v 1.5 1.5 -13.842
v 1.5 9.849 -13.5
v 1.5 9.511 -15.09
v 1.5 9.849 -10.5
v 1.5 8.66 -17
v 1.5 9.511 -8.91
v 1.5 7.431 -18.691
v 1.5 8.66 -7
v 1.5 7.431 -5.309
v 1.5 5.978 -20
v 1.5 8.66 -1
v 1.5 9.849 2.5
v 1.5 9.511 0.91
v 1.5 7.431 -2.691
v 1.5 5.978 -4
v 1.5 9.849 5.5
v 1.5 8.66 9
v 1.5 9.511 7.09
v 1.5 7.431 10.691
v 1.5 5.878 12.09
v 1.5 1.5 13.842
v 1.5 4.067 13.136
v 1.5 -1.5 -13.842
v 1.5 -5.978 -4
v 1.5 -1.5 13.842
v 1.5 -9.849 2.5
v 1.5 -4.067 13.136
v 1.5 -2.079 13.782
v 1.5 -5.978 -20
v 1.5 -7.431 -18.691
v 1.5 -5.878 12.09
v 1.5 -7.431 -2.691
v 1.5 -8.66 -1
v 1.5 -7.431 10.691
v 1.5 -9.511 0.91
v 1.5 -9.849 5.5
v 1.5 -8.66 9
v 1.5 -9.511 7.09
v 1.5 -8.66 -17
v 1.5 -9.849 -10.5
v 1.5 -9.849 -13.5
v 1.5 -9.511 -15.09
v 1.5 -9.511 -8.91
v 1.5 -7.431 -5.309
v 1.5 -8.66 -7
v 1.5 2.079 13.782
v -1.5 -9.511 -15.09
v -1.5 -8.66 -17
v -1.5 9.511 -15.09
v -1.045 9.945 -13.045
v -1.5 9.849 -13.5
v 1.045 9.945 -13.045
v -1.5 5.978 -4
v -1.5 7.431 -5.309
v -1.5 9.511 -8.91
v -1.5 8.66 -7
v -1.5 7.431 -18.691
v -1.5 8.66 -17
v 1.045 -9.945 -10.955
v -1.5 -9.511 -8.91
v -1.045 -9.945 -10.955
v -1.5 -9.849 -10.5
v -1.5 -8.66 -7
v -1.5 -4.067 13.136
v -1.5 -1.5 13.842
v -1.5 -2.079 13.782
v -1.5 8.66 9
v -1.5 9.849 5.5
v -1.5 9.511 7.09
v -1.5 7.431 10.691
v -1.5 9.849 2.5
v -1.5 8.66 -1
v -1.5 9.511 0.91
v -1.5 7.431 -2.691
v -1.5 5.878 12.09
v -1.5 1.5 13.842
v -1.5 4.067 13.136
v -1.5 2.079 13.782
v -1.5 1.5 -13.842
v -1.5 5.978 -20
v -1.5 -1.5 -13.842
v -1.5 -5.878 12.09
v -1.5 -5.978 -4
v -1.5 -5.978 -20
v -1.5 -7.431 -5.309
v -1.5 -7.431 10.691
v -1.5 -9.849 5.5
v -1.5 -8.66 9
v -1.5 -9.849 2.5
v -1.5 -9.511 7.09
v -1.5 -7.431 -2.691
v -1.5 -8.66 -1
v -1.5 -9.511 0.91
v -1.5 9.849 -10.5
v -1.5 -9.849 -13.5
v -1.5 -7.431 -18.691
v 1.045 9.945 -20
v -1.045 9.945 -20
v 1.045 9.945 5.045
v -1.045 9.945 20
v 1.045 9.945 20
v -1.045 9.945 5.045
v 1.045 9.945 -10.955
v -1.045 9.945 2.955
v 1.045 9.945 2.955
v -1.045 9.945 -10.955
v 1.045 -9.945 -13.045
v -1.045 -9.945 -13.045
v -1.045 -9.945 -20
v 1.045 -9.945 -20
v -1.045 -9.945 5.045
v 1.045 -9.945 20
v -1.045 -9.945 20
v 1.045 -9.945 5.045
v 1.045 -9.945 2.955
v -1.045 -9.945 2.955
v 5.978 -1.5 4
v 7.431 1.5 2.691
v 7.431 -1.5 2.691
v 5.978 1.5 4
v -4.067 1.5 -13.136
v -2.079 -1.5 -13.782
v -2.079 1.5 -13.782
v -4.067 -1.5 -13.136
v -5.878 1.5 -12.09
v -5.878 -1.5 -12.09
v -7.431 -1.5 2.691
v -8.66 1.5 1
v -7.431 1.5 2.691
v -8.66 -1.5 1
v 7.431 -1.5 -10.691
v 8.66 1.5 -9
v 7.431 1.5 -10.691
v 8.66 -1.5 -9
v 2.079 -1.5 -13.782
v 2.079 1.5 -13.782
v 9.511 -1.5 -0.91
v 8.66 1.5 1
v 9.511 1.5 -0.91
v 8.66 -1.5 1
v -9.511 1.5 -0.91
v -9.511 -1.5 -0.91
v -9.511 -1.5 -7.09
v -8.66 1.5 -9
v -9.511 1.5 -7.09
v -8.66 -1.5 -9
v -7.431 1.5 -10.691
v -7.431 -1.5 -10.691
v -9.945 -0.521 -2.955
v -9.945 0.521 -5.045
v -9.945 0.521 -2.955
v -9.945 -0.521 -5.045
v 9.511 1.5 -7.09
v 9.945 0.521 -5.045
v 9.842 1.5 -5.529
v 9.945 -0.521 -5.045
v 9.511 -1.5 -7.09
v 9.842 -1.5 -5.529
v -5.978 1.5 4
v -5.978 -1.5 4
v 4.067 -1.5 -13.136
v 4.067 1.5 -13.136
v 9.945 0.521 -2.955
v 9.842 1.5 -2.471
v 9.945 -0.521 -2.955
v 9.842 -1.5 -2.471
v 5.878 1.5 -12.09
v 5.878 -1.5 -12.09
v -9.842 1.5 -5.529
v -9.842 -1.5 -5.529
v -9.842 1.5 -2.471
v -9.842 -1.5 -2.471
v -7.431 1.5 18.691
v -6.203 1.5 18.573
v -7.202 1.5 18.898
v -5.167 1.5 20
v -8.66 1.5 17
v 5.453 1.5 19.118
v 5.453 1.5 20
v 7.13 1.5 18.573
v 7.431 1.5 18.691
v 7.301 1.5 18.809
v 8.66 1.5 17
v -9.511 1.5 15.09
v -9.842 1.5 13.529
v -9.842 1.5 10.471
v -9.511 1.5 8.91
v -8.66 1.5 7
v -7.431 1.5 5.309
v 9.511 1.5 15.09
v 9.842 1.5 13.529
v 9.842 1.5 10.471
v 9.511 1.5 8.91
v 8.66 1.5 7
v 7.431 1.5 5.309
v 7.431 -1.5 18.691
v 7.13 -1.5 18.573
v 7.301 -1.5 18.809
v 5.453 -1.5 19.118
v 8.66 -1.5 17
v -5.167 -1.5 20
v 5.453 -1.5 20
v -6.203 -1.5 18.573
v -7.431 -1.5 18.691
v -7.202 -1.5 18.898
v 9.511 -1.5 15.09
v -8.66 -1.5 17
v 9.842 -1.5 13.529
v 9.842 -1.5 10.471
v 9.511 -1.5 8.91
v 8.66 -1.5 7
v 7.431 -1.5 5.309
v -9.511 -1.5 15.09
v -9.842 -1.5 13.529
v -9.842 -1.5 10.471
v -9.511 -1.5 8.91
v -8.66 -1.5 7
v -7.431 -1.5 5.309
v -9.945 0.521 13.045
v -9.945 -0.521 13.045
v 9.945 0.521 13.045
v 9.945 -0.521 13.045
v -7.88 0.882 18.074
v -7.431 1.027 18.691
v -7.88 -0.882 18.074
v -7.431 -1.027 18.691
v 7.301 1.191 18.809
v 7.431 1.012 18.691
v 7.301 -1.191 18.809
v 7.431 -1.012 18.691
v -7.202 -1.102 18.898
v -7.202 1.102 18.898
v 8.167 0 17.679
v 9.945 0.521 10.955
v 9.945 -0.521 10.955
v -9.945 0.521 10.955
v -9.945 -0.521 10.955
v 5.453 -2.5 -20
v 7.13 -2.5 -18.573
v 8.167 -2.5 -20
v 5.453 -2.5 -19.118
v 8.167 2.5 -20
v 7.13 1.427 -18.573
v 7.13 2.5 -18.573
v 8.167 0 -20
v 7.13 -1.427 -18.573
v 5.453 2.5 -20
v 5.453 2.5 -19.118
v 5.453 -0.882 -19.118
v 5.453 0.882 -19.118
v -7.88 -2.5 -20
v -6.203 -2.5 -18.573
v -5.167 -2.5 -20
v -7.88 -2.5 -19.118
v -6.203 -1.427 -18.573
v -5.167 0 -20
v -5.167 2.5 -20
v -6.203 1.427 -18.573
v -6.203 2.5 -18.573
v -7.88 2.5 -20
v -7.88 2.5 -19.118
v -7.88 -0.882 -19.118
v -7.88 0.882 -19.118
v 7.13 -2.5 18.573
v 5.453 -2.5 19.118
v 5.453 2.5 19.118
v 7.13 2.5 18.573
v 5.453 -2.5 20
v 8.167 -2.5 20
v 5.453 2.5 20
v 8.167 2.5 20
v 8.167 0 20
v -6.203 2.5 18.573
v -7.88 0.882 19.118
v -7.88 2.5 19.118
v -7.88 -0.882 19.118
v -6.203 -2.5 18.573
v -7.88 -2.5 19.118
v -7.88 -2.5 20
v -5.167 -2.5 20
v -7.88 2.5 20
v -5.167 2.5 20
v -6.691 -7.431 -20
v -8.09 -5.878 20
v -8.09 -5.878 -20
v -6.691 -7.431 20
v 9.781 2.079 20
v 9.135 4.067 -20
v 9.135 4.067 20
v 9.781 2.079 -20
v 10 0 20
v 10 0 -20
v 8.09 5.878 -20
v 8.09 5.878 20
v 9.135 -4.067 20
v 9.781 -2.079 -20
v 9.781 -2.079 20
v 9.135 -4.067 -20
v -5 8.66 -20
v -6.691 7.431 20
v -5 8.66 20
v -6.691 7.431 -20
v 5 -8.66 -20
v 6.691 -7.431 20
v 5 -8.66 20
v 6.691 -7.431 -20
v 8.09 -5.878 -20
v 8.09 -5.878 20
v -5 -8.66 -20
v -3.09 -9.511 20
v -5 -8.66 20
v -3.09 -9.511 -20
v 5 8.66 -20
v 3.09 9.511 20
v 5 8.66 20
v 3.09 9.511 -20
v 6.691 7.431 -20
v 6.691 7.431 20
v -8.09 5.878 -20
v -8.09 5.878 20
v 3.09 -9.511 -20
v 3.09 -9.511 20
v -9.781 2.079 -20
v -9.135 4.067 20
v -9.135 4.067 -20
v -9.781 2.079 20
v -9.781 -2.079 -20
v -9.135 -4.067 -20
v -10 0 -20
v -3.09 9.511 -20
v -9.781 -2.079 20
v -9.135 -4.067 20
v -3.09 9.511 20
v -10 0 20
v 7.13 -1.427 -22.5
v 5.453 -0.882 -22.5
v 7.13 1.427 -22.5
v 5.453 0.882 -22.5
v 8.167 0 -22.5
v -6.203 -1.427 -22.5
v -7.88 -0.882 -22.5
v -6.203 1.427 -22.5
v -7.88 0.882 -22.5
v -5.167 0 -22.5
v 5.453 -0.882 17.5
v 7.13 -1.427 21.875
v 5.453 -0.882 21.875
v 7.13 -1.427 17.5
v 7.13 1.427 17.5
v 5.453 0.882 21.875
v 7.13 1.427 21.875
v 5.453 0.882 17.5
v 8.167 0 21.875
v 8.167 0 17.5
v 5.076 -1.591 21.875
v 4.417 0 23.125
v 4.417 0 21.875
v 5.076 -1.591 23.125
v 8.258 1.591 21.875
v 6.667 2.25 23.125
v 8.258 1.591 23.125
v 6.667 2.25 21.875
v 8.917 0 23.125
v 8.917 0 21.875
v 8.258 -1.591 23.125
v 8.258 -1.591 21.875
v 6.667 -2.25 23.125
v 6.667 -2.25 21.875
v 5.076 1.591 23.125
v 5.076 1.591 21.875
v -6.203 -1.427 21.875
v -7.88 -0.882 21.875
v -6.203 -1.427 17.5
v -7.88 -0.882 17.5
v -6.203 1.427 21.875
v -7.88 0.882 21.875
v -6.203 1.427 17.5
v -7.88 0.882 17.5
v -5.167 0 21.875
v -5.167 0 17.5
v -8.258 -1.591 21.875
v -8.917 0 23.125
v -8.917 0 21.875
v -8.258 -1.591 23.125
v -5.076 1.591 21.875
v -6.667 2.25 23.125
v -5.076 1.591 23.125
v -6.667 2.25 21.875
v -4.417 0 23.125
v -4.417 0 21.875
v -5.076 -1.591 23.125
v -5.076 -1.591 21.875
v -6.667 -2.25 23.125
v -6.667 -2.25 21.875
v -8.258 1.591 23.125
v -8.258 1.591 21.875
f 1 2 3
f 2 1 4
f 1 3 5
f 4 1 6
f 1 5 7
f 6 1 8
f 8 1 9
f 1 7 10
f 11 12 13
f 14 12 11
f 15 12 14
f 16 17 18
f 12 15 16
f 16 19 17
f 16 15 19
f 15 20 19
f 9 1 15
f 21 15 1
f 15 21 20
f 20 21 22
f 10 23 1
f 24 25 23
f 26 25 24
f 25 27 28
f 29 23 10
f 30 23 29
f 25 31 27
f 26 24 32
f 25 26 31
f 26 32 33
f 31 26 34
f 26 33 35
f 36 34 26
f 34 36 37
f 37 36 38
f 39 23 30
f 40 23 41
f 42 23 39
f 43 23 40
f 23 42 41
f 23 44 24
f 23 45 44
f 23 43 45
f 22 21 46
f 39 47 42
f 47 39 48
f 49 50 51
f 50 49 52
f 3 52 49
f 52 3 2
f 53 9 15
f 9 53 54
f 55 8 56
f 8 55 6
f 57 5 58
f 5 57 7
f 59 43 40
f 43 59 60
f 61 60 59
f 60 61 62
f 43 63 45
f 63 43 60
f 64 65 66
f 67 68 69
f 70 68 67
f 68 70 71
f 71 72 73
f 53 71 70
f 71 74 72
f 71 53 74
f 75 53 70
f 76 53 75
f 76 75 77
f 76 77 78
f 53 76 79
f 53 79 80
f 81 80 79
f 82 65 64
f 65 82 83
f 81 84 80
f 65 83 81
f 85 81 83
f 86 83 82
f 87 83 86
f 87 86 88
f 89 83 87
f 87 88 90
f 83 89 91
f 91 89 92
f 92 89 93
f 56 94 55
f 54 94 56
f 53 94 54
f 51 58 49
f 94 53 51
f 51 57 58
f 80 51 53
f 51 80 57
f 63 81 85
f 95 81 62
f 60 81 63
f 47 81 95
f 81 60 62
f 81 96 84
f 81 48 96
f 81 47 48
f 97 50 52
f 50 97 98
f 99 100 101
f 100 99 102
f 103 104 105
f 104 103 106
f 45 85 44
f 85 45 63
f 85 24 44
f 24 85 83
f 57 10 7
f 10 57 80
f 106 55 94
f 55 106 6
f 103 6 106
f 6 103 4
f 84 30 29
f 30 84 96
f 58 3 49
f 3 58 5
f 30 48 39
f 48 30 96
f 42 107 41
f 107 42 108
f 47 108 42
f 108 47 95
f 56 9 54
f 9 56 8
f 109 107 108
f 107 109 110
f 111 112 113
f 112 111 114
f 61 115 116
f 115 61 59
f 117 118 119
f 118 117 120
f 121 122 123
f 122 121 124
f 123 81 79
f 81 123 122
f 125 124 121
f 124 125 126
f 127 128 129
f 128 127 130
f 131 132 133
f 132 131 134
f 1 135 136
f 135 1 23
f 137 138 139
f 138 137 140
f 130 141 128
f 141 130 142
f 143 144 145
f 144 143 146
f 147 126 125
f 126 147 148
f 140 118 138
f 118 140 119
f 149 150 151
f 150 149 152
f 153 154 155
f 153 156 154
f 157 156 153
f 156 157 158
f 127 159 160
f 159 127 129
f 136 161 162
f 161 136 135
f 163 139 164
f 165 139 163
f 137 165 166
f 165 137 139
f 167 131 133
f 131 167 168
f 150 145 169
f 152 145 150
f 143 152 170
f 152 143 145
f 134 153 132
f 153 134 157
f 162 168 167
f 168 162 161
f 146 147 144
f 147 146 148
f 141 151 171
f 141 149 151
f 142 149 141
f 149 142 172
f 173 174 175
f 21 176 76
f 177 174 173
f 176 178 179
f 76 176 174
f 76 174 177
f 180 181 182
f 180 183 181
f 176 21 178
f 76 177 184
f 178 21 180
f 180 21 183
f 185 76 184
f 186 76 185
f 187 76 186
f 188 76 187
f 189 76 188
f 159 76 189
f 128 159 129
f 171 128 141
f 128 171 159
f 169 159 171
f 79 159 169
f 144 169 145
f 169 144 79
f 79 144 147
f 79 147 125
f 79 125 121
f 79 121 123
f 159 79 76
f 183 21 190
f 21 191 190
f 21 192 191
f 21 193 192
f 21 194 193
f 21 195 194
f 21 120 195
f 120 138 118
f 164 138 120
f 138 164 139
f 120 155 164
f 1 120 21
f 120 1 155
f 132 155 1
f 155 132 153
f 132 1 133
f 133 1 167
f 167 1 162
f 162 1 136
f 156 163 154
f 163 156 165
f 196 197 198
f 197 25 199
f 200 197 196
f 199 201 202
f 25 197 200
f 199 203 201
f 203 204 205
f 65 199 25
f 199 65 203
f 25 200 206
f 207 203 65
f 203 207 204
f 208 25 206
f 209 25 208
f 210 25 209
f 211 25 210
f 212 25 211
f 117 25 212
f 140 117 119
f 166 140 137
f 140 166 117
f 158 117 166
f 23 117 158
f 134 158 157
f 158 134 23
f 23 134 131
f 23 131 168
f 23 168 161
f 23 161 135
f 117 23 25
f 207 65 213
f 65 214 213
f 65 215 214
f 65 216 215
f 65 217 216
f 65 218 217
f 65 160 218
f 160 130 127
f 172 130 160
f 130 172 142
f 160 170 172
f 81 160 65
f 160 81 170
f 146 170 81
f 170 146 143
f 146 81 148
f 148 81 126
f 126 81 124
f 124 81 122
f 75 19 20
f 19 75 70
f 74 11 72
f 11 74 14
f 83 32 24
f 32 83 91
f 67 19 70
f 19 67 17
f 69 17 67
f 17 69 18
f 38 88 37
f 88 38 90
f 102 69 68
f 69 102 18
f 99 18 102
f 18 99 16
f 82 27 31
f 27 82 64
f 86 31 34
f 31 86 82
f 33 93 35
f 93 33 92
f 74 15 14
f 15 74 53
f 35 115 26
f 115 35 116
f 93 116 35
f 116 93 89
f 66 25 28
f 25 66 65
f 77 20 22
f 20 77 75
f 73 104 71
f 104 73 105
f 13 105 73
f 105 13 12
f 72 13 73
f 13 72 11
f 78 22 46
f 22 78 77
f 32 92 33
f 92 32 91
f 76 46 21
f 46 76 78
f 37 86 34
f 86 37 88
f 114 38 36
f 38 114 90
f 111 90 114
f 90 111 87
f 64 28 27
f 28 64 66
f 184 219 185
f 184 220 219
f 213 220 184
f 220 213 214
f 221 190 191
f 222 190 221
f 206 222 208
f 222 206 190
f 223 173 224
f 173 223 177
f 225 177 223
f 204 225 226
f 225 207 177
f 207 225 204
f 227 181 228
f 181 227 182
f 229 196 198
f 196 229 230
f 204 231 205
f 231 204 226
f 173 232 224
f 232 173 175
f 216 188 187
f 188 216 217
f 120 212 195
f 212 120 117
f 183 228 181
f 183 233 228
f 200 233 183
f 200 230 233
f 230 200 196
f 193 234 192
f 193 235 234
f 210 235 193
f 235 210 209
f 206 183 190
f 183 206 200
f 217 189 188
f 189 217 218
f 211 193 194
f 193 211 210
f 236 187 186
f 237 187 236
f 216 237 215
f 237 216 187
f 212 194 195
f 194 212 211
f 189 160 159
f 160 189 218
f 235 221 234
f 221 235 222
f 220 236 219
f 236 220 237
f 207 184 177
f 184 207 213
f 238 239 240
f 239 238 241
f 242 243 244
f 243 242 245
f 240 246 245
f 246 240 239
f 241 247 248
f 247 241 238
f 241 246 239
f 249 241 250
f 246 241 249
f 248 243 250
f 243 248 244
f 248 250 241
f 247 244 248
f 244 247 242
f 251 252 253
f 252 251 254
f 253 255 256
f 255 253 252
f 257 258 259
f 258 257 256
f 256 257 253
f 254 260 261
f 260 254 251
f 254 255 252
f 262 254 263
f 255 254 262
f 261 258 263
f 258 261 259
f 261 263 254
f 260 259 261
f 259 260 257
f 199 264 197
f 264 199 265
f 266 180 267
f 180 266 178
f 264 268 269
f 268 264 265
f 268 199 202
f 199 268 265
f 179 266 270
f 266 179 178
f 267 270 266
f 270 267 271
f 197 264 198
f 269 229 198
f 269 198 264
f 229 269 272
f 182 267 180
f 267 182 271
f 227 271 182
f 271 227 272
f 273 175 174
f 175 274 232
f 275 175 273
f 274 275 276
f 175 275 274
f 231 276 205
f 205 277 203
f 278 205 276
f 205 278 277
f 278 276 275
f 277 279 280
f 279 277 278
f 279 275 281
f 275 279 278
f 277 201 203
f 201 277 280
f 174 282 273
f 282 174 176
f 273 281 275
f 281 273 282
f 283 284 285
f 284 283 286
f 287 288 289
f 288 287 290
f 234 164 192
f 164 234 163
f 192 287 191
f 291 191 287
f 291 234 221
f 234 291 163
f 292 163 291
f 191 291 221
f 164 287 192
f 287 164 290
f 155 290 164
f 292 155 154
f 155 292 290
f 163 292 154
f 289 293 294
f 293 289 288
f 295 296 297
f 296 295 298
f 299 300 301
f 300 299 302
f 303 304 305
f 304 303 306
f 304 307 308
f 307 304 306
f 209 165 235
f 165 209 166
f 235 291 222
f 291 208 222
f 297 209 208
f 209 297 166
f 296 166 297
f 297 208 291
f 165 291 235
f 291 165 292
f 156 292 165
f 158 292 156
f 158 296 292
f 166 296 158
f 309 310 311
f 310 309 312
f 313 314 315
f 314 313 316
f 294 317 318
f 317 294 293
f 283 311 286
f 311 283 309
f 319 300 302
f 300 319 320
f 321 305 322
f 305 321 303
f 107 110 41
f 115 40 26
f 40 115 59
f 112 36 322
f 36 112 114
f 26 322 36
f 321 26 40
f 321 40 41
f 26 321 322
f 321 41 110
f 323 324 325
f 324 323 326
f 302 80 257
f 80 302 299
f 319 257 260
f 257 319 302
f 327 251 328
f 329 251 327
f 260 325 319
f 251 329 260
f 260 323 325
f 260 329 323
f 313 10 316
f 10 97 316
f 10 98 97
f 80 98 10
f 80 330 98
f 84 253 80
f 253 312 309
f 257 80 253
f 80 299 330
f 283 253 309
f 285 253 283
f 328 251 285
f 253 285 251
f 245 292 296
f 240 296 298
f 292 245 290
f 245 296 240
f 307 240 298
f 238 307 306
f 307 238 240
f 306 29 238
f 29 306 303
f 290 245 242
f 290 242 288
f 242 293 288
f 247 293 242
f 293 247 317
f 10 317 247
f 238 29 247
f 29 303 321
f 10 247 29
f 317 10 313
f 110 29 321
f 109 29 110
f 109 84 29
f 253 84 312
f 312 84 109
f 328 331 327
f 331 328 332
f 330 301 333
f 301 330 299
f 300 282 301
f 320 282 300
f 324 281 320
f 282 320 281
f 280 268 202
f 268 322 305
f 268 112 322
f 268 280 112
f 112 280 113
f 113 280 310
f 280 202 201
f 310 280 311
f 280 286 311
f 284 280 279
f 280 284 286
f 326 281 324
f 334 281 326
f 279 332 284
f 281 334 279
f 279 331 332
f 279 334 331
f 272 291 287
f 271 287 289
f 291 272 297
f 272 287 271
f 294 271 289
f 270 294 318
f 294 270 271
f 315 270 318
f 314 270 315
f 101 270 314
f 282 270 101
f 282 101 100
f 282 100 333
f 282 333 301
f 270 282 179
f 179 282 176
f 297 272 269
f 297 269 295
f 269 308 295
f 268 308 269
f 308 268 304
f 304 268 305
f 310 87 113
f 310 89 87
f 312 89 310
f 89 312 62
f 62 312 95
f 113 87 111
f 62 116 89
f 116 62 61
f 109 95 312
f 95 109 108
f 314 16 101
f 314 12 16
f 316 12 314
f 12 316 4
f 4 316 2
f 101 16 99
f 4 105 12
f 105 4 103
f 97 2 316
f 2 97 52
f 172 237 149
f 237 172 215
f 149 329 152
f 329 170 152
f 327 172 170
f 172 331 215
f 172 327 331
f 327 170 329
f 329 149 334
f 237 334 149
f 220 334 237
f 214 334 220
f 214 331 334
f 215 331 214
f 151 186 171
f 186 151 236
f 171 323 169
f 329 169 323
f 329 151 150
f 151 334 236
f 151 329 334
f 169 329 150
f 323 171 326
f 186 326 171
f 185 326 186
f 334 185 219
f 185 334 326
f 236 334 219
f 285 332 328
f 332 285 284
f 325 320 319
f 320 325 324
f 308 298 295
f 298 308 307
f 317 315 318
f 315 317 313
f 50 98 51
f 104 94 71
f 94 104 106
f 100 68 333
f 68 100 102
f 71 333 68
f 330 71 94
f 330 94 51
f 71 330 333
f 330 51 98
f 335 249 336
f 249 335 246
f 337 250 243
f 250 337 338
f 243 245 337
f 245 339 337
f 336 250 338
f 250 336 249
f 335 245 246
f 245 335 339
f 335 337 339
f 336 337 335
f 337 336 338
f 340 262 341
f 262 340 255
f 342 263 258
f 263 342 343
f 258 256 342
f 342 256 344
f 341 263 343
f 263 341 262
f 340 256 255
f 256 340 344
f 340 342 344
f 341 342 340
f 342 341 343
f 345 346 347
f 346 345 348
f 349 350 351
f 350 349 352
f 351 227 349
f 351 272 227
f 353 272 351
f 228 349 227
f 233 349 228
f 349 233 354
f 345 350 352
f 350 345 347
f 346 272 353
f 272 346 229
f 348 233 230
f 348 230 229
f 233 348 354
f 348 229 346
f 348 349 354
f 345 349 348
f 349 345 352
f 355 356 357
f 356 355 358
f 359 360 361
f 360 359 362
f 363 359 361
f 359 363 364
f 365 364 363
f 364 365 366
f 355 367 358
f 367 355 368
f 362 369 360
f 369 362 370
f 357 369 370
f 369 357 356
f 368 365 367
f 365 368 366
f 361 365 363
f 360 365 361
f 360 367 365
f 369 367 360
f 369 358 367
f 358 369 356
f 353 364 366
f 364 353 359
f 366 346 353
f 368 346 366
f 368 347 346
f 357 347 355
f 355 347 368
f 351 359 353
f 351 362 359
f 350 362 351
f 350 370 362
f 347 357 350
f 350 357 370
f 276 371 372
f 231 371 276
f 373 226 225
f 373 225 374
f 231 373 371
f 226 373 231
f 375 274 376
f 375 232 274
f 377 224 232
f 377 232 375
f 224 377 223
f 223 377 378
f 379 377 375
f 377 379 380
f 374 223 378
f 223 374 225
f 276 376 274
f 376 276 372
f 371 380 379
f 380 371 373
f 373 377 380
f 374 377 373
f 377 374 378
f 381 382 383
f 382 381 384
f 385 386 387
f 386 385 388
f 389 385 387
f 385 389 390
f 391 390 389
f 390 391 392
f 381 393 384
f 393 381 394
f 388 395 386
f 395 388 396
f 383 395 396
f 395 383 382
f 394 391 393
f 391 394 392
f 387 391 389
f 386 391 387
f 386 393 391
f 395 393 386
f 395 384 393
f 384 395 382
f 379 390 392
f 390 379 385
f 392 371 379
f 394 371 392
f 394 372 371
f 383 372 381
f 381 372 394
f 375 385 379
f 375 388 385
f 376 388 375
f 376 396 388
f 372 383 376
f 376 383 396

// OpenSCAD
// Parameters
main_body_diameter = 20;
main_body_length = 40;
screw_diameter = 3;
screw_length = 5;
helical_cut_width = 3;
helical_cut_depth = 5;
num_helical_cuts = 4;
helical_spacing = main_body_length / (num_helical_cuts + 1);

// Main body with helical cuts
module main_body() {
    difference() {
        cylinder(d=main_body_diameter, h=main_body_length, center=true);
        
        // Helical cuts
        for (i = [0:num_helical_cuts-1]) {
            rotate([0, 0, i * (360 / num_helical_cuts)])
            translate([0, 0, -main_body_length/2 + (i + 1) * helical_spacing])
            rotate([0, 90, 0])
            cylinder(d=main_body_diameter, h=helical_cut_width, center=true);
        }
        
        // Clamping screw holes on flat circular faces
        for (z = [-main_body_length/2, main_body_length/2]) {
            translate([main_body_diameter/3, 0, z])
            rotate([90, 0, 0])
            cylinder(d=screw_diameter, h=screw_length, center=true);
            
            translate([-main_body_diameter/3, 0, z])
            rotate([90, 0, 0])
            cylinder(d=screw_diameter, h=screw_length, center=true);
        }
    }
}

// Clamping screw
module clamping_screw() {
    union() {
        cylinder(d=screw_diameter, h=screw_length, center=true);
        translate([0, 0, screw_length/2])
        cylinder(d=screw_diameter*1.5, h=screw_length/4, center=true);
    }
}

// Assemble the model
module flexible_coupling() {
    main_body();
    
    // Positioning the screws on the flat circular faces
    for (z = [-main_body_length/2, main_body_length/2]) {
        translate([main_body_diameter/3, 0, z])
        clamping_screw();
        
        translate([-main_body_diameter/3, 0, z])
        clamping_screw();
    }
}

// Render the model
flexible_coupling();
